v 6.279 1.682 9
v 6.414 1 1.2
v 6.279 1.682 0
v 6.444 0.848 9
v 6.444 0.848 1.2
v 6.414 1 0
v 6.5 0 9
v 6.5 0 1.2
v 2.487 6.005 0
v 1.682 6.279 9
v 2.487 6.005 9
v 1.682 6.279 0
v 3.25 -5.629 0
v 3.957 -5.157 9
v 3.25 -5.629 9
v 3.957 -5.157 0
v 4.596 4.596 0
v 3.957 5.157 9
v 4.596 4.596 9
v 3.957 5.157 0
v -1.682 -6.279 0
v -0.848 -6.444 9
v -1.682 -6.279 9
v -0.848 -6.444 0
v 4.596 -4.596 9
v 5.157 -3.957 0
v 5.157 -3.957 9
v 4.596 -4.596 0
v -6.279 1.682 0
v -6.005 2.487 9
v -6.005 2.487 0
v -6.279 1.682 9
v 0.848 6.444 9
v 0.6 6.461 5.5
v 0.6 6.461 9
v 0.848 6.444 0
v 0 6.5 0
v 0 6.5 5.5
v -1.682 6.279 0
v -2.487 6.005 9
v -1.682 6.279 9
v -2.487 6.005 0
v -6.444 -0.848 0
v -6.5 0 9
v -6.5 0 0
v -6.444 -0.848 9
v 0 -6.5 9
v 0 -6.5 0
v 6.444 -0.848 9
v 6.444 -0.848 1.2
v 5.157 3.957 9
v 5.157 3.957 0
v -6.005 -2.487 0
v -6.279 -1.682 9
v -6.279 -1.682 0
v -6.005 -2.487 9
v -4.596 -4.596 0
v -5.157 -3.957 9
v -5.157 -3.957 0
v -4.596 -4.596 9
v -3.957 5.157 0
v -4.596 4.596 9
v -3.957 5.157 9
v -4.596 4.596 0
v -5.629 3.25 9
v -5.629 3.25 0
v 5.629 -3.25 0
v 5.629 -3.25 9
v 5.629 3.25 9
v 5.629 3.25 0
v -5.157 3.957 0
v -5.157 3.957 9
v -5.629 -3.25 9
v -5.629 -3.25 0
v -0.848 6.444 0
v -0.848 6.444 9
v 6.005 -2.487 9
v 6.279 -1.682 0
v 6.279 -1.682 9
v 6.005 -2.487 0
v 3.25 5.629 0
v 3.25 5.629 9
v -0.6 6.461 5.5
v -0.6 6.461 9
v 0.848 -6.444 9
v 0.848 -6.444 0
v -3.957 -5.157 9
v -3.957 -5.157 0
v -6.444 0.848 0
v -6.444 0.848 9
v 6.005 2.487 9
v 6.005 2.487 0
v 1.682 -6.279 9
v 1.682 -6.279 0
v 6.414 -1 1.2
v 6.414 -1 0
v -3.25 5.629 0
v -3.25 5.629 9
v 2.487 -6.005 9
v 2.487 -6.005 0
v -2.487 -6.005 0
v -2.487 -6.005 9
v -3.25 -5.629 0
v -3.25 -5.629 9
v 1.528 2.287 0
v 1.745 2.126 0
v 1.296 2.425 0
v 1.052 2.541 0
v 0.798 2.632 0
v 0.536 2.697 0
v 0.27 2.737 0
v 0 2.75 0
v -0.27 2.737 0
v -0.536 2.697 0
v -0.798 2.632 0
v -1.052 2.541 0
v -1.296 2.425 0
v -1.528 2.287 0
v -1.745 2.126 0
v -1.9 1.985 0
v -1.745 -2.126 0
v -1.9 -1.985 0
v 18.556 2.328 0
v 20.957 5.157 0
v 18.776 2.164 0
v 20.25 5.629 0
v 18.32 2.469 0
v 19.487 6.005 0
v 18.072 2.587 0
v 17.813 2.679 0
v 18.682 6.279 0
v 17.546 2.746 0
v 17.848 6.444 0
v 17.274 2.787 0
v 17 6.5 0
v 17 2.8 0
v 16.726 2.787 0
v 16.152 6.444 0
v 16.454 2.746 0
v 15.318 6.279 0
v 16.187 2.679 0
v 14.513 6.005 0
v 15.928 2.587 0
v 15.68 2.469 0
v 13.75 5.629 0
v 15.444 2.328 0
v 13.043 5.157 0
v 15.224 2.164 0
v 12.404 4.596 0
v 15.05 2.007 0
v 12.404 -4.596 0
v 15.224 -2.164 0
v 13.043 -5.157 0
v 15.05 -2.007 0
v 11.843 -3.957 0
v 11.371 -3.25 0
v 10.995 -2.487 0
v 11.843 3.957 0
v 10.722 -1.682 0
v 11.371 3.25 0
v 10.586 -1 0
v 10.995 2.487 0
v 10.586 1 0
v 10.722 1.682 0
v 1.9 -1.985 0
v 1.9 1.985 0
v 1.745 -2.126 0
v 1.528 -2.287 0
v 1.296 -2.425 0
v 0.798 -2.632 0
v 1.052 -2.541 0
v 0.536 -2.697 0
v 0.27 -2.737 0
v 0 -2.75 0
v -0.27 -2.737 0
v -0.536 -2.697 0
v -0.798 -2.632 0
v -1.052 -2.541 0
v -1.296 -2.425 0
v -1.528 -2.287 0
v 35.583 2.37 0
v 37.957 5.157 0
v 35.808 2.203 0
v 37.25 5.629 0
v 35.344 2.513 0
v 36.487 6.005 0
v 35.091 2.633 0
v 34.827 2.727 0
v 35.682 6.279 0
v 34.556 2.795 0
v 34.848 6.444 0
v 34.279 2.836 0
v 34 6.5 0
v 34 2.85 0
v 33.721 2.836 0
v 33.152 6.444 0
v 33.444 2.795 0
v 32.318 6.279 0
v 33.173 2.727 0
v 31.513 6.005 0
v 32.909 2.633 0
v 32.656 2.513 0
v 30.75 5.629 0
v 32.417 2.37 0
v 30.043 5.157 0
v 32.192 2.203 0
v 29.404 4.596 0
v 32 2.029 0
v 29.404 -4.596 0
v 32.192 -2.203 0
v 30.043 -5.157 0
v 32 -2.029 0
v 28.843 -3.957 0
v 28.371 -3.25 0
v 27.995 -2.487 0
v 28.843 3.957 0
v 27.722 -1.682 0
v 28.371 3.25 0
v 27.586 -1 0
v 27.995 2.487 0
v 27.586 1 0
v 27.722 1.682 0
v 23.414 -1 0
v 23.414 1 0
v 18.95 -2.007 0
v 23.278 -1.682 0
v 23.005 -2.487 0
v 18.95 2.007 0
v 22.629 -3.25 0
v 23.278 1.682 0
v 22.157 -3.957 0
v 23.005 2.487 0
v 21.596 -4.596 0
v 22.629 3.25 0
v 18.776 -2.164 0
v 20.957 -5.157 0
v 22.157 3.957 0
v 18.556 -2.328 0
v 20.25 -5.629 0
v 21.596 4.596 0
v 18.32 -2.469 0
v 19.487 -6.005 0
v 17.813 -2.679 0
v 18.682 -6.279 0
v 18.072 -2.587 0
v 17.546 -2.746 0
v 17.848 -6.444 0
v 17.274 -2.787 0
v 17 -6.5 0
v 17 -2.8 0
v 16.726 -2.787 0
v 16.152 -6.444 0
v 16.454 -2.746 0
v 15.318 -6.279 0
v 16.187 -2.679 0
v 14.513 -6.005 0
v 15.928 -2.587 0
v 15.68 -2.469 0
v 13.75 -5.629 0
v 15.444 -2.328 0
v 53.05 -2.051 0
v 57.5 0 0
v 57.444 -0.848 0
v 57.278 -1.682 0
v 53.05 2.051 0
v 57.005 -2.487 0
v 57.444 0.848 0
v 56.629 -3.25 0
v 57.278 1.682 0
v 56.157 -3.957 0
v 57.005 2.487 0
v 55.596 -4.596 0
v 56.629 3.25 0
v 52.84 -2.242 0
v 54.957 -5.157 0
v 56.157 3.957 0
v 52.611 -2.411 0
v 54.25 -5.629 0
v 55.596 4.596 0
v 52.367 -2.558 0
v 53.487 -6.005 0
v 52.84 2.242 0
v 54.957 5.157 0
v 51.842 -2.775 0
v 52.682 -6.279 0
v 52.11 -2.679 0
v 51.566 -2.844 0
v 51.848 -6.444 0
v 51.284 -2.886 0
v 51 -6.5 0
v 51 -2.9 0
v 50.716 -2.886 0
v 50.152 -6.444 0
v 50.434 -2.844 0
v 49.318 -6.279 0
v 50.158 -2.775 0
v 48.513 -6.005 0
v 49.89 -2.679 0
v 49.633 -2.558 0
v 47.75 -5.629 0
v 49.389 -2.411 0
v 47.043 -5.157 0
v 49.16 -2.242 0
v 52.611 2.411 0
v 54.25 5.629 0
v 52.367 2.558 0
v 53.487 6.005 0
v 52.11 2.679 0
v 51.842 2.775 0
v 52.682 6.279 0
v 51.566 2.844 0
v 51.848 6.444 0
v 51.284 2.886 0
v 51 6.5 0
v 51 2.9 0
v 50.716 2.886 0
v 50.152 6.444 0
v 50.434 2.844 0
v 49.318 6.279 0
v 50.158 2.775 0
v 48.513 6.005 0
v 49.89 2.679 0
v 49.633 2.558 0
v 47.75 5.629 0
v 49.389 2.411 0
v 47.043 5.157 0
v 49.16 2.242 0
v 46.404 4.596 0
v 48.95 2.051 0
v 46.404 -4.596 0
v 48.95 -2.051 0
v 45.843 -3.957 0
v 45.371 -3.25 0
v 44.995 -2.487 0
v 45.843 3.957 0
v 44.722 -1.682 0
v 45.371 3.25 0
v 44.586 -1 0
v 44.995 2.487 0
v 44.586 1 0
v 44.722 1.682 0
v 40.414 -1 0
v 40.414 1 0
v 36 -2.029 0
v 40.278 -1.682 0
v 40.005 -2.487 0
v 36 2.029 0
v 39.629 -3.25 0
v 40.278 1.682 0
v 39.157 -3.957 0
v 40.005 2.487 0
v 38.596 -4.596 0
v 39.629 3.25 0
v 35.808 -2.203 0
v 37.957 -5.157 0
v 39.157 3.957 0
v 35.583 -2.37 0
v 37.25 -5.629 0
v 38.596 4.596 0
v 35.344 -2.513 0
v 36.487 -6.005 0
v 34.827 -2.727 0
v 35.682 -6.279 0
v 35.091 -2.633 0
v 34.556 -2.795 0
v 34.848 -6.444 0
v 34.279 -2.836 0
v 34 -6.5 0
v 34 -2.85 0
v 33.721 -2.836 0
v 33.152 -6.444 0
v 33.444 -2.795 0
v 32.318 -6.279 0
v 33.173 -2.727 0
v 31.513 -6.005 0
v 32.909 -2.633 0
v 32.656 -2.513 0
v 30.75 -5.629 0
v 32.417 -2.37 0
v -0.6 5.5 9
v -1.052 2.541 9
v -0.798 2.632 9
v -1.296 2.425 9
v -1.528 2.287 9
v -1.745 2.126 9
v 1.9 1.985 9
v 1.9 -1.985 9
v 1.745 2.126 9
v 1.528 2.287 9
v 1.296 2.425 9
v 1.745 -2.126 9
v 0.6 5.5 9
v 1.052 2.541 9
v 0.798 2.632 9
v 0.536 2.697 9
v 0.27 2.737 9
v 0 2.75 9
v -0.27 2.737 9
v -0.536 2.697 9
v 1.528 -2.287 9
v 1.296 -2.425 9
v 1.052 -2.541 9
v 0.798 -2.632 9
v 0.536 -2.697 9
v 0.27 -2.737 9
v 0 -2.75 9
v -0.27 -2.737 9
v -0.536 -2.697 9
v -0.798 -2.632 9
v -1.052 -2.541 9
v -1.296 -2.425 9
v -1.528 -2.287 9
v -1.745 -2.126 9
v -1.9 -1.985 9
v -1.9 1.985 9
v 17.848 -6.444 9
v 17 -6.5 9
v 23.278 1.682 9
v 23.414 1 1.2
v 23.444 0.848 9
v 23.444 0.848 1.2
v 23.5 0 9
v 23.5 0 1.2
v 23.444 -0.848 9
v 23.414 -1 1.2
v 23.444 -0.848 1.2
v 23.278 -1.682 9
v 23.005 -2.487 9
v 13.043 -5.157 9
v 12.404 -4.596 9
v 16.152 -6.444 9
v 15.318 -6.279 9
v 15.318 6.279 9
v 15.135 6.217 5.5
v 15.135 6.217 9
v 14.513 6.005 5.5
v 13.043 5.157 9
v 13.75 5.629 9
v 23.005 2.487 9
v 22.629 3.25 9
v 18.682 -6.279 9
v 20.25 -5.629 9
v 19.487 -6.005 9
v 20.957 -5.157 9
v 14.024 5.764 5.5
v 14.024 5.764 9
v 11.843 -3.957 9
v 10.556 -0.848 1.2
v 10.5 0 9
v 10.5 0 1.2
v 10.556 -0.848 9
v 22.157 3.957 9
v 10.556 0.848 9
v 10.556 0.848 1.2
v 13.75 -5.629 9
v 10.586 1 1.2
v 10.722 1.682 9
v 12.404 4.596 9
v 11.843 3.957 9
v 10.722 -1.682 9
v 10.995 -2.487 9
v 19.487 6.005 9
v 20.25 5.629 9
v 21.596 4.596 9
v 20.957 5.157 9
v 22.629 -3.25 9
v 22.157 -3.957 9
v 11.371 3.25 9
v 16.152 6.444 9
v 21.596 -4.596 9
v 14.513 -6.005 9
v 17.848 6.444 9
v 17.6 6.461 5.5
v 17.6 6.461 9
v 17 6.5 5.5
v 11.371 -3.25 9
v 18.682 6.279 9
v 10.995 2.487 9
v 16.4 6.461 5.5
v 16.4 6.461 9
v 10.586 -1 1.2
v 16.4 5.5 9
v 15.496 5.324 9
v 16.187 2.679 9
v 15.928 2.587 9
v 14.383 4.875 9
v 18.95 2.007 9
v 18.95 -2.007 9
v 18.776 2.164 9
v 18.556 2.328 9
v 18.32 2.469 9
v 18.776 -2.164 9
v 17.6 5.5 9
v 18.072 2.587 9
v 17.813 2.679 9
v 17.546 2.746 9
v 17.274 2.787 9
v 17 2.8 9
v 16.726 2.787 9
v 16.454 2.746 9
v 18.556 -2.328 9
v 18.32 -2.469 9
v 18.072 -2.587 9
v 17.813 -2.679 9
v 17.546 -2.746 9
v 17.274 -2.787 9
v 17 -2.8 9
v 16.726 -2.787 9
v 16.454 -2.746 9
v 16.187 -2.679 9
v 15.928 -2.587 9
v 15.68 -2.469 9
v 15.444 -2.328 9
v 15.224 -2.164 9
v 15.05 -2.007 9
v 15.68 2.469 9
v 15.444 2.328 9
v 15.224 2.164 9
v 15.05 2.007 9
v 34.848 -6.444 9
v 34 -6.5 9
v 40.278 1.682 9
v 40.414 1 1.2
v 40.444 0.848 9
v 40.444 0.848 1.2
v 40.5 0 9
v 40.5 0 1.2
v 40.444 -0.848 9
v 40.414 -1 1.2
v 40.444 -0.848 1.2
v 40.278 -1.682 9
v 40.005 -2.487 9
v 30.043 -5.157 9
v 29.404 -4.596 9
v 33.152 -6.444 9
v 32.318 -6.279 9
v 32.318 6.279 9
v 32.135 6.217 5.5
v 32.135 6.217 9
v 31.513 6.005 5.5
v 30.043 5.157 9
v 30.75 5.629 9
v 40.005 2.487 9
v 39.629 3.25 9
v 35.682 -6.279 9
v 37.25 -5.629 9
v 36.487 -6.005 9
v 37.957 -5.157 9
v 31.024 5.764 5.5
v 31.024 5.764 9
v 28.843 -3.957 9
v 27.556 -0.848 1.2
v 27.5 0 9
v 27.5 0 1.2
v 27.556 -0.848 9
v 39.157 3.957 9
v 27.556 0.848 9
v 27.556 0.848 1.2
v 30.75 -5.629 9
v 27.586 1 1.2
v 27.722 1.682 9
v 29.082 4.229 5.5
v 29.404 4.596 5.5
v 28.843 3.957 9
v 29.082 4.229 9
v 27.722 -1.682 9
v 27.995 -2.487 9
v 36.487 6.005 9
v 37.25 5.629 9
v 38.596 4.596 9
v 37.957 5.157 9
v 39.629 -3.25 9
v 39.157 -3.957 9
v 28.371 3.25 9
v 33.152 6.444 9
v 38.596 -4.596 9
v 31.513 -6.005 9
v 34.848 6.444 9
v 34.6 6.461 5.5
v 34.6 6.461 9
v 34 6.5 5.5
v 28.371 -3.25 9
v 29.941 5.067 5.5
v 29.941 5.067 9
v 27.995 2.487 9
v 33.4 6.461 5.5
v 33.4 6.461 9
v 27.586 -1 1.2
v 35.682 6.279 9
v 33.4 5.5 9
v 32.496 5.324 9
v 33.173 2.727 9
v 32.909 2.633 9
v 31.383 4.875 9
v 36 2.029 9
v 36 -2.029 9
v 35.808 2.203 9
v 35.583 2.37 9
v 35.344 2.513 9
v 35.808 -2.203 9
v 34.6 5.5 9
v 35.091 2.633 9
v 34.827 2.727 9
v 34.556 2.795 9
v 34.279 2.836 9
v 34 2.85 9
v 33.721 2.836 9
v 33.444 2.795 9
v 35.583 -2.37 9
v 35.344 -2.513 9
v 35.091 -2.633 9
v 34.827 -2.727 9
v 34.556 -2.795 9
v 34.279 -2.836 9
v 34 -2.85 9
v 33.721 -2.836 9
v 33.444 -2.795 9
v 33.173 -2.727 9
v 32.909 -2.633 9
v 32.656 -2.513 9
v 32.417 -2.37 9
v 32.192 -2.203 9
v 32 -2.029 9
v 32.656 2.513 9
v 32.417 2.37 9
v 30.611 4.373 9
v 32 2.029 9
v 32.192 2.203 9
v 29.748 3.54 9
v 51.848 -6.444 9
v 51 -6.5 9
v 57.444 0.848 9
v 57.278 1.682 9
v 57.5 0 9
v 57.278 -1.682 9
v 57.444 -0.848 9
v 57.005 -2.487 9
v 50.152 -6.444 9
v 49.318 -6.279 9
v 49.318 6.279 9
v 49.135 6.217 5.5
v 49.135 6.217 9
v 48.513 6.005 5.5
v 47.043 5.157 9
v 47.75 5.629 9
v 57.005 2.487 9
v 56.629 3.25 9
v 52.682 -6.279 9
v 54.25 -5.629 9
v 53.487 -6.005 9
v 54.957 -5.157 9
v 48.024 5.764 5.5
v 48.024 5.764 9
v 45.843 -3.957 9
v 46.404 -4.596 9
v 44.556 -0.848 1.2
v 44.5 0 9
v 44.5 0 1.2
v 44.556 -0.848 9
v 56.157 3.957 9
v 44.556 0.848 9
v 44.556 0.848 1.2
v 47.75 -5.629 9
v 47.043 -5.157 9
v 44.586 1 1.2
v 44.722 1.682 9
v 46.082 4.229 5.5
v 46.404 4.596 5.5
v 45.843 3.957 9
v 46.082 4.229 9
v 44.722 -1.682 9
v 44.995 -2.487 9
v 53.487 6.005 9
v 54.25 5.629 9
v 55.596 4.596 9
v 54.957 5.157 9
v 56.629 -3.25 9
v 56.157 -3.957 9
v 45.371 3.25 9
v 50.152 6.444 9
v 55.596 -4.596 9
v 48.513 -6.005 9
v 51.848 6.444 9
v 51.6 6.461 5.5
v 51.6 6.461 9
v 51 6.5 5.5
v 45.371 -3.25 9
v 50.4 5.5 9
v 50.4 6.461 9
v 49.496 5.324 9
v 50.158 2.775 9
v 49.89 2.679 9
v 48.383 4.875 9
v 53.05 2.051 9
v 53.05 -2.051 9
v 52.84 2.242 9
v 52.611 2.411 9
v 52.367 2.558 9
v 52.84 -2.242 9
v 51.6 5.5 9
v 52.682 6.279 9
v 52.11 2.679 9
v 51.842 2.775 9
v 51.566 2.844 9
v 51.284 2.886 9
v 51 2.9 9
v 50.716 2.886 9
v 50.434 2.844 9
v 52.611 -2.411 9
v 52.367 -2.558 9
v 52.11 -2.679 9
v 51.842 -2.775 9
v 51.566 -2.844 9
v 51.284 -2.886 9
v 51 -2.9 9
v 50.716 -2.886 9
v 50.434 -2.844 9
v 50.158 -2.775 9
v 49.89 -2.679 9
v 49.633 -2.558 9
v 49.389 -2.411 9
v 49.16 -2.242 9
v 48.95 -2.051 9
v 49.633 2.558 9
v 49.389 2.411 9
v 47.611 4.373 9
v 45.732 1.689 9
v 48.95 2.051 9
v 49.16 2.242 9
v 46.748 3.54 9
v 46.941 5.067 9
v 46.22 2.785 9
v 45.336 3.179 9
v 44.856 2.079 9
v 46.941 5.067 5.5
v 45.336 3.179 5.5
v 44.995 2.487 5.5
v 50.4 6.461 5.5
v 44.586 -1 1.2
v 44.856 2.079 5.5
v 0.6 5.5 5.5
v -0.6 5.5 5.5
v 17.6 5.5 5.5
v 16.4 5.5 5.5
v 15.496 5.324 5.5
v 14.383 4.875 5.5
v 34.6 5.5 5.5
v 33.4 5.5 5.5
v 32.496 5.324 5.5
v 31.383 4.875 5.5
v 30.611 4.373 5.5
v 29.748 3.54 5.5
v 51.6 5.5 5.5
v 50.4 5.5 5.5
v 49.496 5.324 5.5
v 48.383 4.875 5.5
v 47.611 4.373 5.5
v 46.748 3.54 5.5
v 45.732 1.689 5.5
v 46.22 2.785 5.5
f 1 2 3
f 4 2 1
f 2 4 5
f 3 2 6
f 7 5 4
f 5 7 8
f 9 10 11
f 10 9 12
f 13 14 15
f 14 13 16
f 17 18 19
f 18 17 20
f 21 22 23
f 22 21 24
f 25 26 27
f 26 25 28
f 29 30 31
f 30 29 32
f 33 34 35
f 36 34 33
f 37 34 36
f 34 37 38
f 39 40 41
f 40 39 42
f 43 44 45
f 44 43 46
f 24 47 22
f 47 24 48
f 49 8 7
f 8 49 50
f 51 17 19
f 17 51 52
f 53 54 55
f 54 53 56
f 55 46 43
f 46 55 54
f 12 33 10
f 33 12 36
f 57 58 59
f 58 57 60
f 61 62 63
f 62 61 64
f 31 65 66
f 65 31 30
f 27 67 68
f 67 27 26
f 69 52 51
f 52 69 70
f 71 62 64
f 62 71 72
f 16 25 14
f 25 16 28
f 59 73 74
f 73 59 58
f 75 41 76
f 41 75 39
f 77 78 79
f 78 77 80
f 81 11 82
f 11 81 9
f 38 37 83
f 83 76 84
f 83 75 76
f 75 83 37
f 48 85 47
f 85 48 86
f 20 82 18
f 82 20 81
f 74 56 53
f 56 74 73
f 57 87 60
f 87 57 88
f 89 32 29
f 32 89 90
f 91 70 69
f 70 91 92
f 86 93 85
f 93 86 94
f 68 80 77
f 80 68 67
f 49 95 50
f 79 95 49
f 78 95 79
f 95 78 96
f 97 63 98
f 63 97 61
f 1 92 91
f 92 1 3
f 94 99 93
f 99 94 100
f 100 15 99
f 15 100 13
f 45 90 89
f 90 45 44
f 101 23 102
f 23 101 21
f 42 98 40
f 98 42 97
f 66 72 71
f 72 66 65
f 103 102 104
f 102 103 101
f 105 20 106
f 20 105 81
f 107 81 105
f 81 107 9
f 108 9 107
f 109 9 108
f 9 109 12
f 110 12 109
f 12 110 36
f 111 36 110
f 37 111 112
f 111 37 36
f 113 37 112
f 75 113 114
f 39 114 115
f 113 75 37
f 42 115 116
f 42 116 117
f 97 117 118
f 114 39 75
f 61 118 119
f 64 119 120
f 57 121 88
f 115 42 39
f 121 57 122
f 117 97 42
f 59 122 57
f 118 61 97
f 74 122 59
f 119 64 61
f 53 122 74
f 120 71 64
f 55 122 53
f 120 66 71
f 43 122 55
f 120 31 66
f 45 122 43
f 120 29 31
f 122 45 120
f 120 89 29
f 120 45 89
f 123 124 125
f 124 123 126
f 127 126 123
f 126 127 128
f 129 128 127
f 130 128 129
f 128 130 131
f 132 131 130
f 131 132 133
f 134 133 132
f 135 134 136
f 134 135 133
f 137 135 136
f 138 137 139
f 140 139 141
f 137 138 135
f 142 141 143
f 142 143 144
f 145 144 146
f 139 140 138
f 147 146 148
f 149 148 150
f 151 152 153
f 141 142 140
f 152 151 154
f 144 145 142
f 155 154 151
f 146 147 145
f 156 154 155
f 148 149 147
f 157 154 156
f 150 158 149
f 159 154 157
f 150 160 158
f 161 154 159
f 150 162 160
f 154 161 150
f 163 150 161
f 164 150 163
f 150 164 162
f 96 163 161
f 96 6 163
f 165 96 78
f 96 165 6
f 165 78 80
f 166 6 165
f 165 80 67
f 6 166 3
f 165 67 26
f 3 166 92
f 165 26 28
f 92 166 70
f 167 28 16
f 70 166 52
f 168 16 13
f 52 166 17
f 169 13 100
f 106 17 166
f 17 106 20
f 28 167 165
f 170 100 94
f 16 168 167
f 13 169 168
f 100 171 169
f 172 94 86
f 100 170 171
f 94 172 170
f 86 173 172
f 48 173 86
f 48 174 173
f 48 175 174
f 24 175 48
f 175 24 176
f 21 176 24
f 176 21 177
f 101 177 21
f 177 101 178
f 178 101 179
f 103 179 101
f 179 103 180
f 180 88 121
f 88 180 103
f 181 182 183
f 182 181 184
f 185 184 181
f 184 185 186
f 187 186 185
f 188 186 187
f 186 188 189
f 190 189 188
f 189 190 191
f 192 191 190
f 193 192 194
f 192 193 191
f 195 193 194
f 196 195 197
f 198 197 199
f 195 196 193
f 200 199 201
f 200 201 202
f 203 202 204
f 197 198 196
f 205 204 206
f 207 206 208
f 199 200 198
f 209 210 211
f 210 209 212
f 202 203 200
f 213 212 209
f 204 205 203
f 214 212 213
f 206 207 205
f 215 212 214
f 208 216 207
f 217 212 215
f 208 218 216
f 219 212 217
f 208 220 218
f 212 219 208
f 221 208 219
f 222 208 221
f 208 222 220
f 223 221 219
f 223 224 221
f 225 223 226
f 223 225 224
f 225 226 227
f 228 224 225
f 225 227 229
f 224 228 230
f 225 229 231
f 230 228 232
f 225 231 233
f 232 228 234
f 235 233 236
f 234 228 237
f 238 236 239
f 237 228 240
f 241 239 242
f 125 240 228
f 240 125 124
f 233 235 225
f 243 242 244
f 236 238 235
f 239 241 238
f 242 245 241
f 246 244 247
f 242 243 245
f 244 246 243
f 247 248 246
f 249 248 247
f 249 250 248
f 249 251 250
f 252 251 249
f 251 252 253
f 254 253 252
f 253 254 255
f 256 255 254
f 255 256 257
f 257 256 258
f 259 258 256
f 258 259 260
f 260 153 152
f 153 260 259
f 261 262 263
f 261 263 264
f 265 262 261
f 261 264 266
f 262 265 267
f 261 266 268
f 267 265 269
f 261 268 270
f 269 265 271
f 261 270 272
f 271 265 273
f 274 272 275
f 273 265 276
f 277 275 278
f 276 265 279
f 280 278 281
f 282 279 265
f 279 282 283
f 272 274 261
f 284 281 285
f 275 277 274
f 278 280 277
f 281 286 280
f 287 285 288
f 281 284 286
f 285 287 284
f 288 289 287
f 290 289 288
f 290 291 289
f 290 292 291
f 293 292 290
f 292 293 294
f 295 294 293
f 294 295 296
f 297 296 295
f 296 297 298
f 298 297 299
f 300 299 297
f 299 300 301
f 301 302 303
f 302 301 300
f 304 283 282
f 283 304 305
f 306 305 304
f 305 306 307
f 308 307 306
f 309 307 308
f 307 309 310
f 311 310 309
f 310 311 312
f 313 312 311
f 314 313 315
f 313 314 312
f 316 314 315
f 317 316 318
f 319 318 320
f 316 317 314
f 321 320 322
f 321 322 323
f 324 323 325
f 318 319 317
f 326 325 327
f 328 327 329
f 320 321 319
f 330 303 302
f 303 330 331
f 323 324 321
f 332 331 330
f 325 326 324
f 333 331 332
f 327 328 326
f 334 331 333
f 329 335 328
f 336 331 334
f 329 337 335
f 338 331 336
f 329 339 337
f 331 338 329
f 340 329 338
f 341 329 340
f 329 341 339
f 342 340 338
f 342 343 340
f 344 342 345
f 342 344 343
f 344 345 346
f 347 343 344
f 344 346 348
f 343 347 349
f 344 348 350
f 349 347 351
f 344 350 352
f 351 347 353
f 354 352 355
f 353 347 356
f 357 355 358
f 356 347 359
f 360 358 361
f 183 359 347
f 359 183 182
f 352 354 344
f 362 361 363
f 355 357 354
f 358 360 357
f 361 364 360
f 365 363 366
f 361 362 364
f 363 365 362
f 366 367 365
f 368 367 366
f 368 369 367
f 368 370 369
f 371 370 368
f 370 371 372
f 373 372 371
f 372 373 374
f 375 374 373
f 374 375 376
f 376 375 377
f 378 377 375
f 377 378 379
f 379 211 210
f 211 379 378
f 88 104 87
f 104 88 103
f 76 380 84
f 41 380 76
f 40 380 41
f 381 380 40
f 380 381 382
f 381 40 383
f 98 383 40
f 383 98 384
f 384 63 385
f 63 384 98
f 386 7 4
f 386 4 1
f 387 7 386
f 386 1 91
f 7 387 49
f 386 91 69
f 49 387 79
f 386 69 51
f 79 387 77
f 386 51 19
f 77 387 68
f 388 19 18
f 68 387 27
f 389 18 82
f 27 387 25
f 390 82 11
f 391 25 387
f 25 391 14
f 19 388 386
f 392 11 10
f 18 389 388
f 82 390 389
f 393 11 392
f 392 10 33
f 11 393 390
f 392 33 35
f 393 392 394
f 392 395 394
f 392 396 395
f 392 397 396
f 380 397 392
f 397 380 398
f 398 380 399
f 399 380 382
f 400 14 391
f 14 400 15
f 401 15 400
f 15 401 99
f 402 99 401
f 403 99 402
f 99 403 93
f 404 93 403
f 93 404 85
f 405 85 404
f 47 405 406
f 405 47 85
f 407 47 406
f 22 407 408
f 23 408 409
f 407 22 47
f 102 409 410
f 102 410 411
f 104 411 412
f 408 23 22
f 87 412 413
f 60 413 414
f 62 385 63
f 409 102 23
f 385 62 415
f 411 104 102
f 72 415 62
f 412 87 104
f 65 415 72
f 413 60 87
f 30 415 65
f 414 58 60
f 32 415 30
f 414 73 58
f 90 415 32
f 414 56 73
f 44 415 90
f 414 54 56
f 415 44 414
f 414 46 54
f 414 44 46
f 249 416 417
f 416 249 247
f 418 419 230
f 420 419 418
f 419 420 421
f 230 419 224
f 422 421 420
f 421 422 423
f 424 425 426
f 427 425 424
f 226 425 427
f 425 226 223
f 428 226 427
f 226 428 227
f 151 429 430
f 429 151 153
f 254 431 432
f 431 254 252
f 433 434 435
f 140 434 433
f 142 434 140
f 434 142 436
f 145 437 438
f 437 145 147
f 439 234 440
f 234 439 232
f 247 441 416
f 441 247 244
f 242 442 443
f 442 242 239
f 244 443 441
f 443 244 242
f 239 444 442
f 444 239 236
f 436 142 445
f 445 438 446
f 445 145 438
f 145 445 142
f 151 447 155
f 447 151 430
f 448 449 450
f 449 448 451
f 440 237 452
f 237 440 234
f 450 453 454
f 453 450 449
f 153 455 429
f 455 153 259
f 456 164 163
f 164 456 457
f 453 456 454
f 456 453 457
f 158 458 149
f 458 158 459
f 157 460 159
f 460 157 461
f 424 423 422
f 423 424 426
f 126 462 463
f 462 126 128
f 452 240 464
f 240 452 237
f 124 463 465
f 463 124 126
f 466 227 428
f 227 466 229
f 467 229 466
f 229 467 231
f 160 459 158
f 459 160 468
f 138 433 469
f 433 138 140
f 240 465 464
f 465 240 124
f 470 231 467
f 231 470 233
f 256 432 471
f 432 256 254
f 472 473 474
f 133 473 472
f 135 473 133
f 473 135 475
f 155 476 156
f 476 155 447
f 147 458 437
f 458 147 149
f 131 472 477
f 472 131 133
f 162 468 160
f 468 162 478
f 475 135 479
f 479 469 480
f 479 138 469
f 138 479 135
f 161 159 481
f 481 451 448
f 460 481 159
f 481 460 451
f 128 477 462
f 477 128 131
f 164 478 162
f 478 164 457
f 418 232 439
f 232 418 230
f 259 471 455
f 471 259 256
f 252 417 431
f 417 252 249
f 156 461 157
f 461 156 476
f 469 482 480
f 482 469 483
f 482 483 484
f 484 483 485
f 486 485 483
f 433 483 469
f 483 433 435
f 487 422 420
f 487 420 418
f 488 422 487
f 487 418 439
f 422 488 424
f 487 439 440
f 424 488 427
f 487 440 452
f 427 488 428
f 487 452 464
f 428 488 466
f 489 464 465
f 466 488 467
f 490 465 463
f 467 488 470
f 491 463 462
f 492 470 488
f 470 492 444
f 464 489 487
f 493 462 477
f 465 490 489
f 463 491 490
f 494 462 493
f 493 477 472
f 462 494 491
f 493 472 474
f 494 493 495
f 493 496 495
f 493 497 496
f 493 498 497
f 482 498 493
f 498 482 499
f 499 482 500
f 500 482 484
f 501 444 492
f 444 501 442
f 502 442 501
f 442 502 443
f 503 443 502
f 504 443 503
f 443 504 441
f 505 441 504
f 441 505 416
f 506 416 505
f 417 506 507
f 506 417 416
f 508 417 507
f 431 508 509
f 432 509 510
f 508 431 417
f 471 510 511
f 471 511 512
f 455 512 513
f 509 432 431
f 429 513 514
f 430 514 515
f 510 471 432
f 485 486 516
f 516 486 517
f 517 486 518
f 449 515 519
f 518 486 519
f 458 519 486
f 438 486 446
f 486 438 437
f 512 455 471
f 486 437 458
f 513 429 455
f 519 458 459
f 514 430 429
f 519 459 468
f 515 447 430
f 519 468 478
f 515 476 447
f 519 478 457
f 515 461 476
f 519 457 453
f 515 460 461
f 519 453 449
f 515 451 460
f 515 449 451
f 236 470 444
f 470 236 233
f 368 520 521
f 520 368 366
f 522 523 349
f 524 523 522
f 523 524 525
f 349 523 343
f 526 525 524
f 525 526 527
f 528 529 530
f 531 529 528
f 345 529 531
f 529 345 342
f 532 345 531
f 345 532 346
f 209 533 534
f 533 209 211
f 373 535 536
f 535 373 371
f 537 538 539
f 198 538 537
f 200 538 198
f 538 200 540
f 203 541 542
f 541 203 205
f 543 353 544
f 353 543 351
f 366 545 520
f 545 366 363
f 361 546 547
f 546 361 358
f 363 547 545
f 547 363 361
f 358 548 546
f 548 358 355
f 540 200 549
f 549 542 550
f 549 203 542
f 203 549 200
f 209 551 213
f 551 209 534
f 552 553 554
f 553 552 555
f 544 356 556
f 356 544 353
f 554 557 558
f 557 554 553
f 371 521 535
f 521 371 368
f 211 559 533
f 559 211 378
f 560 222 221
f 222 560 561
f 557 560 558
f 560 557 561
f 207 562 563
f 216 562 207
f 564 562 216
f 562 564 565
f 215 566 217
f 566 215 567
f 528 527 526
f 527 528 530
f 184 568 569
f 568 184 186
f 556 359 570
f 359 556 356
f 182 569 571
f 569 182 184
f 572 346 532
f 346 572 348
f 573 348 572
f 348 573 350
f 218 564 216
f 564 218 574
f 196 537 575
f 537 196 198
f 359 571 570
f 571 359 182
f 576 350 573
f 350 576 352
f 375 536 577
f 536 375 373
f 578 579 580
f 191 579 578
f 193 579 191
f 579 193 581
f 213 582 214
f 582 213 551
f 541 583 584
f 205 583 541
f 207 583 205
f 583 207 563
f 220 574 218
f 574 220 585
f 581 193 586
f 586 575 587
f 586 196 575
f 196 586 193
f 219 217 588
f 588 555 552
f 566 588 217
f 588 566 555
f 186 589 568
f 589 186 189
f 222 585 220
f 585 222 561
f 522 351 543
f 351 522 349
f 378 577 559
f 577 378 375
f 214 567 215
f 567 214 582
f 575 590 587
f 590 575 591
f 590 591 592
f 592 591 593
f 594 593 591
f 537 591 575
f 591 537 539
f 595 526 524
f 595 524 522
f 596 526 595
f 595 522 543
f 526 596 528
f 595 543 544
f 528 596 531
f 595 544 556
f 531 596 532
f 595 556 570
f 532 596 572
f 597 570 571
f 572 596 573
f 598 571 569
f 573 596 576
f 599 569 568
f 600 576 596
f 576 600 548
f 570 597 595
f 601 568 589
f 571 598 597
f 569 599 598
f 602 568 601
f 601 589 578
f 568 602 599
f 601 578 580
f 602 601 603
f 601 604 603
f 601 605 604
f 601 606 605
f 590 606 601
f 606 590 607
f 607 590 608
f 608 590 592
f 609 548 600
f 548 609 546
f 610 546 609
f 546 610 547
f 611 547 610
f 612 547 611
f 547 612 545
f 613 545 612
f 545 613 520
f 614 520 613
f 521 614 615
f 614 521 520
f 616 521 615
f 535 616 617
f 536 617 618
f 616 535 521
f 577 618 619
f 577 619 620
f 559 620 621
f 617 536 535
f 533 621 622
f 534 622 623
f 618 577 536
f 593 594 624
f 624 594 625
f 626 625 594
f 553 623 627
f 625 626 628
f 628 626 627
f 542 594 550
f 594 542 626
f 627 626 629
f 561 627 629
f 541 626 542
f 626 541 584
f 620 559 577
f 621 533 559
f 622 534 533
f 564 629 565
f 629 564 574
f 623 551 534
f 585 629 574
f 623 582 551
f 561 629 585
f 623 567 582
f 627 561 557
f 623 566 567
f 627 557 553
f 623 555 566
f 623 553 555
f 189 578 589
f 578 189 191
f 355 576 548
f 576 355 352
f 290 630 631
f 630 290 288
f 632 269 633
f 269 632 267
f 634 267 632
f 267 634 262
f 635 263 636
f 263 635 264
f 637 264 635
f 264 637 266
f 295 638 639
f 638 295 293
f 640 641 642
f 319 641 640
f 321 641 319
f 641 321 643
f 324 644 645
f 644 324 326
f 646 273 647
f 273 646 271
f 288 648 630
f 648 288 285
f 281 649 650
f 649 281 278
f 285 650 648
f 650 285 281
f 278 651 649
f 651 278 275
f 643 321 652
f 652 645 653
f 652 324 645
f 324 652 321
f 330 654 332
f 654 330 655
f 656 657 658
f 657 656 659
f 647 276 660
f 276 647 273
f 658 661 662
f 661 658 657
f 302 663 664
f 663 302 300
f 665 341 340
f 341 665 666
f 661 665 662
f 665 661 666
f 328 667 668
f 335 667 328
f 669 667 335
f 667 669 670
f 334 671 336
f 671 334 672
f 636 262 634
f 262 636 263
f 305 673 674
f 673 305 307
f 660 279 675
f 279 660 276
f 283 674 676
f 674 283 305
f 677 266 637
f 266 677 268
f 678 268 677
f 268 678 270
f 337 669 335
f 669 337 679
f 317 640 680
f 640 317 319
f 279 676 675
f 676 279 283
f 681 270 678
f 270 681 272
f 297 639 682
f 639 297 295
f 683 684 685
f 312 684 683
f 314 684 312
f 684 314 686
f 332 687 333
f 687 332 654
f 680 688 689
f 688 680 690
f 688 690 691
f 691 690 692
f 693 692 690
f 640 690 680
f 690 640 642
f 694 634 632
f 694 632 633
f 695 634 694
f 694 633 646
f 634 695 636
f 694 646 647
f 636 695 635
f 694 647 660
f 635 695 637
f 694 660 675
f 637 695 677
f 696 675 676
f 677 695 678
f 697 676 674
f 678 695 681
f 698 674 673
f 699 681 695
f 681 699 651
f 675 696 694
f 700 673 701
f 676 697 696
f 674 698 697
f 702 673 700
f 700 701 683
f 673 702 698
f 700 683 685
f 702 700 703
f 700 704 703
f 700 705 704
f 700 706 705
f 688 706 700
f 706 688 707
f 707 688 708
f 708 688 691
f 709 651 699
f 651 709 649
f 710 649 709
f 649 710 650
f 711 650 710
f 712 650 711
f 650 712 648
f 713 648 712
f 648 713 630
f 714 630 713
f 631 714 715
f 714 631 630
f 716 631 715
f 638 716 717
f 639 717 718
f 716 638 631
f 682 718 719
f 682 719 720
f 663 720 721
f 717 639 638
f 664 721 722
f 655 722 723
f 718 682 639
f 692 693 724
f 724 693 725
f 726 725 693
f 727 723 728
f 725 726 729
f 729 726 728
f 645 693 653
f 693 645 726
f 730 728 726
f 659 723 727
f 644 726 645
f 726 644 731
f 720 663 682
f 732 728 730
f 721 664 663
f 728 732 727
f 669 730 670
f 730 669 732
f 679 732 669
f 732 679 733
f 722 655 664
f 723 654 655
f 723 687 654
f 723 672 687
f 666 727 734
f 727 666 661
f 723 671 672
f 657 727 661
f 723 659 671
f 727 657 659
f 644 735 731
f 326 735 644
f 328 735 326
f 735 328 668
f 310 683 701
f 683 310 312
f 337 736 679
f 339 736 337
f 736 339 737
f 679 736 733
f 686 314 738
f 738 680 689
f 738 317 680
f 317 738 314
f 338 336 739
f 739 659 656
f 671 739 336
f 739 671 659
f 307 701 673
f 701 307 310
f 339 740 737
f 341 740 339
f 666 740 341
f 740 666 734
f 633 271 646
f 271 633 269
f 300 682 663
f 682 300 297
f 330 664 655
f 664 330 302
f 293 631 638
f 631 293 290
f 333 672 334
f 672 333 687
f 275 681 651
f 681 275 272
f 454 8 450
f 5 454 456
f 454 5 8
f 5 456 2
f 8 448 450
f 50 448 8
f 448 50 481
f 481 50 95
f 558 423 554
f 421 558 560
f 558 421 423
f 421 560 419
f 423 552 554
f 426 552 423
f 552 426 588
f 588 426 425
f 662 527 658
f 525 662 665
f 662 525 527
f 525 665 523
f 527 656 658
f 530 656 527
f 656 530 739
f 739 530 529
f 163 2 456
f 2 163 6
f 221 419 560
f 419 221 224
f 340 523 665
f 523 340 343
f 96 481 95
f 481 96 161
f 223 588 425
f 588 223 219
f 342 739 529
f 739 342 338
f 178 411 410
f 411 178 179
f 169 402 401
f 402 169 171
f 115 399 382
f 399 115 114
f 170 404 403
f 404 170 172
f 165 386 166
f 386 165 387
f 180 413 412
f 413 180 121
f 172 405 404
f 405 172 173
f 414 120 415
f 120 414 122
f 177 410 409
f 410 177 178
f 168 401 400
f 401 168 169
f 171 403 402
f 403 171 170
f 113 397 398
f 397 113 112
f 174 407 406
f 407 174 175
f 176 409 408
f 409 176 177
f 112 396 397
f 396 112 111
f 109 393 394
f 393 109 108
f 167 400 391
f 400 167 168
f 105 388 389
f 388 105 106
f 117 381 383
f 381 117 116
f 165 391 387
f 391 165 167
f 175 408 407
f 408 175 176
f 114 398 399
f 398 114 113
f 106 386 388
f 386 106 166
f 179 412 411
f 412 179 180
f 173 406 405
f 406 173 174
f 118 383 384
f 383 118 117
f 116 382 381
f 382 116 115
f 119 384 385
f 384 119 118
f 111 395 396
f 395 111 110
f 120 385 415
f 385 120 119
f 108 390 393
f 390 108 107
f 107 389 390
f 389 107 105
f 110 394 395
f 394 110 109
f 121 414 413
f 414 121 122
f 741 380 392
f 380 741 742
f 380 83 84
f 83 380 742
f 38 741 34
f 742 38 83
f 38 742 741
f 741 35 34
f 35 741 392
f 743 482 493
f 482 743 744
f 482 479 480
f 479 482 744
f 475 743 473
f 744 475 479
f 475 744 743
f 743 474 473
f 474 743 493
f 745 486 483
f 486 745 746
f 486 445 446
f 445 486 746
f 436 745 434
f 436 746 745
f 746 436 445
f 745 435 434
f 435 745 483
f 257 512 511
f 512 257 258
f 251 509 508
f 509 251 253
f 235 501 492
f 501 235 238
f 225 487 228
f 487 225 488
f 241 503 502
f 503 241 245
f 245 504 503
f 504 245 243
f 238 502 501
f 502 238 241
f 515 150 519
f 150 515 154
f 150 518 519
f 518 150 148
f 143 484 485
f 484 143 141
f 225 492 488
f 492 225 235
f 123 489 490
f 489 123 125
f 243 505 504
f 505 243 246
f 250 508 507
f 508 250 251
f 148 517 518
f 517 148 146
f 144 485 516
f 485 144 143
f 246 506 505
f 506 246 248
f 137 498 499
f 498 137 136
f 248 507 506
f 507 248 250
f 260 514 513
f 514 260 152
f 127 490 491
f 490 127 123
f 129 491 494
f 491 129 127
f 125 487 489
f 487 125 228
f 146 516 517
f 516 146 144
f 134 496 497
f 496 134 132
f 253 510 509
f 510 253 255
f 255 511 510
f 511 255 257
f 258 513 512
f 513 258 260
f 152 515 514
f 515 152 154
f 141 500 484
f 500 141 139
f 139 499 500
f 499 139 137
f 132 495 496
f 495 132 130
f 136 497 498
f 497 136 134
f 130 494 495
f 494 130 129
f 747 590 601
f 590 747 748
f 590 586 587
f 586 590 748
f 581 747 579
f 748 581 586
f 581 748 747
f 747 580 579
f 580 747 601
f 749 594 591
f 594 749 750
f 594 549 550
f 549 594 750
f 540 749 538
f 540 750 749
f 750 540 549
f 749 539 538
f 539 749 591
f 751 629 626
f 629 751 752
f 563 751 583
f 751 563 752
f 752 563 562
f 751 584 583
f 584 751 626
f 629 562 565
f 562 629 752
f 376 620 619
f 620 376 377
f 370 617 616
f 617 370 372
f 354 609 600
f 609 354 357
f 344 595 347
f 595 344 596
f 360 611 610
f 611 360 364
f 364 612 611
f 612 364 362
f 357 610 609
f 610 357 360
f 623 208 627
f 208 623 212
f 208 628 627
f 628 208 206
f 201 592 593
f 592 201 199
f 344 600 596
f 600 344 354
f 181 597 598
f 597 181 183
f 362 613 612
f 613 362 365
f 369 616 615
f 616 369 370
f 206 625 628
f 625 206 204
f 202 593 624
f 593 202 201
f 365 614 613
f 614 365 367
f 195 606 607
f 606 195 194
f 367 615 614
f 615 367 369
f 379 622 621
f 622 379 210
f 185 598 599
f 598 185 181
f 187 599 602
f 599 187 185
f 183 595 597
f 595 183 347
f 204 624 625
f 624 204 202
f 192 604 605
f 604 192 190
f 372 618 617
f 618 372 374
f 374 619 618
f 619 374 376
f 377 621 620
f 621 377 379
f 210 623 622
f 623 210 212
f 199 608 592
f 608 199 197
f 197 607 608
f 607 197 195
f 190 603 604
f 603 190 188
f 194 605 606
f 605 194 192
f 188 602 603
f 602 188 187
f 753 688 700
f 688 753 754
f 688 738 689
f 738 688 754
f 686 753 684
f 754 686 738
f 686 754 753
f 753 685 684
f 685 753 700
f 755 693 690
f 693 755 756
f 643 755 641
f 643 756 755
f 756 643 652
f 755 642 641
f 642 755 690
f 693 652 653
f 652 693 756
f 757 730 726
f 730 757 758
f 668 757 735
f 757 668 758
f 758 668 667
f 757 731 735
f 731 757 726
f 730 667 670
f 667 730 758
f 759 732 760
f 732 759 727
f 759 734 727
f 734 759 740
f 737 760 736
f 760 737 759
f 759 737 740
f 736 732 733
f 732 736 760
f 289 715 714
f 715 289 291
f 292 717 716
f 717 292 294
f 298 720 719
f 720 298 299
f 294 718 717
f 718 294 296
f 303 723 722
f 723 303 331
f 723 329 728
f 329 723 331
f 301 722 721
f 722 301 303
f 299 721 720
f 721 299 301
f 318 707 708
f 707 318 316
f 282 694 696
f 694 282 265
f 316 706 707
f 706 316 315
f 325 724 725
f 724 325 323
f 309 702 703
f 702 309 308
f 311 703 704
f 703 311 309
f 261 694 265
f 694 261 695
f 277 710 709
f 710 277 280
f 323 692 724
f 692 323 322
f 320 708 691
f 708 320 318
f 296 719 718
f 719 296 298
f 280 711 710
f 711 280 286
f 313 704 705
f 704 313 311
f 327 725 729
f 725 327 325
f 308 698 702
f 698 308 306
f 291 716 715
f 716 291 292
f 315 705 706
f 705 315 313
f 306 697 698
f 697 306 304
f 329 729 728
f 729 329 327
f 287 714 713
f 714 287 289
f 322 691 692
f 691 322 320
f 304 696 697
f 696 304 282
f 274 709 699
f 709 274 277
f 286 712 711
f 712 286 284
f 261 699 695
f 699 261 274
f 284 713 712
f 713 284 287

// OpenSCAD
// shaft_fit_test.scad: find the right bore for your TT motor shafts before
// printing wheels. Takes about 10 minutes and 2 g.
//
// Four short hubs with the double-D bore at increasing clearance (per side):
//   1 notch = 0.05 mm, 2 = 0.10, 3 = 0.15, 4 = 0.20
// Push each onto a motor shaft. Pick the tightest one that goes on fully by
// hand without cracking, and set shaft_clr in lib/telebot_common.scad to it.
// Print with the same printer, material and settings as the wheels.

include <lib/telebot_common.scad>

clearances = [0.05, 0.10, 0.15, 0.20];
hub_d = 13;
hub_h = tt_shaft_l;
pitch = 17;

difference() {
    union() {
        for (i = [0 : len(clearances) - 1]) translate([i * pitch, 0, 0]) cylinder(d = hub_d, h = hub_h);
        // tie bar, so the coupons print and stay together as one part
        translate([0, -1, 0]) cube([(len(clearances) - 1) * pitch, 2, 1.2]);
    }
    for (i = [0 : len(clearances) - 1]) translate([i * pitch, 0, 0]) {
        translate([0, 0, -0.01]) double_d(clearances[i], hub_h + 1);
        // notches on the rim: count = position in the list
        for (n = [0 : i]) rotate(90 + n * 22) translate([hub_d / 2, 0, hub_h - 1.5]) cube([2, 1.2, 4], center = true);
    }
}
